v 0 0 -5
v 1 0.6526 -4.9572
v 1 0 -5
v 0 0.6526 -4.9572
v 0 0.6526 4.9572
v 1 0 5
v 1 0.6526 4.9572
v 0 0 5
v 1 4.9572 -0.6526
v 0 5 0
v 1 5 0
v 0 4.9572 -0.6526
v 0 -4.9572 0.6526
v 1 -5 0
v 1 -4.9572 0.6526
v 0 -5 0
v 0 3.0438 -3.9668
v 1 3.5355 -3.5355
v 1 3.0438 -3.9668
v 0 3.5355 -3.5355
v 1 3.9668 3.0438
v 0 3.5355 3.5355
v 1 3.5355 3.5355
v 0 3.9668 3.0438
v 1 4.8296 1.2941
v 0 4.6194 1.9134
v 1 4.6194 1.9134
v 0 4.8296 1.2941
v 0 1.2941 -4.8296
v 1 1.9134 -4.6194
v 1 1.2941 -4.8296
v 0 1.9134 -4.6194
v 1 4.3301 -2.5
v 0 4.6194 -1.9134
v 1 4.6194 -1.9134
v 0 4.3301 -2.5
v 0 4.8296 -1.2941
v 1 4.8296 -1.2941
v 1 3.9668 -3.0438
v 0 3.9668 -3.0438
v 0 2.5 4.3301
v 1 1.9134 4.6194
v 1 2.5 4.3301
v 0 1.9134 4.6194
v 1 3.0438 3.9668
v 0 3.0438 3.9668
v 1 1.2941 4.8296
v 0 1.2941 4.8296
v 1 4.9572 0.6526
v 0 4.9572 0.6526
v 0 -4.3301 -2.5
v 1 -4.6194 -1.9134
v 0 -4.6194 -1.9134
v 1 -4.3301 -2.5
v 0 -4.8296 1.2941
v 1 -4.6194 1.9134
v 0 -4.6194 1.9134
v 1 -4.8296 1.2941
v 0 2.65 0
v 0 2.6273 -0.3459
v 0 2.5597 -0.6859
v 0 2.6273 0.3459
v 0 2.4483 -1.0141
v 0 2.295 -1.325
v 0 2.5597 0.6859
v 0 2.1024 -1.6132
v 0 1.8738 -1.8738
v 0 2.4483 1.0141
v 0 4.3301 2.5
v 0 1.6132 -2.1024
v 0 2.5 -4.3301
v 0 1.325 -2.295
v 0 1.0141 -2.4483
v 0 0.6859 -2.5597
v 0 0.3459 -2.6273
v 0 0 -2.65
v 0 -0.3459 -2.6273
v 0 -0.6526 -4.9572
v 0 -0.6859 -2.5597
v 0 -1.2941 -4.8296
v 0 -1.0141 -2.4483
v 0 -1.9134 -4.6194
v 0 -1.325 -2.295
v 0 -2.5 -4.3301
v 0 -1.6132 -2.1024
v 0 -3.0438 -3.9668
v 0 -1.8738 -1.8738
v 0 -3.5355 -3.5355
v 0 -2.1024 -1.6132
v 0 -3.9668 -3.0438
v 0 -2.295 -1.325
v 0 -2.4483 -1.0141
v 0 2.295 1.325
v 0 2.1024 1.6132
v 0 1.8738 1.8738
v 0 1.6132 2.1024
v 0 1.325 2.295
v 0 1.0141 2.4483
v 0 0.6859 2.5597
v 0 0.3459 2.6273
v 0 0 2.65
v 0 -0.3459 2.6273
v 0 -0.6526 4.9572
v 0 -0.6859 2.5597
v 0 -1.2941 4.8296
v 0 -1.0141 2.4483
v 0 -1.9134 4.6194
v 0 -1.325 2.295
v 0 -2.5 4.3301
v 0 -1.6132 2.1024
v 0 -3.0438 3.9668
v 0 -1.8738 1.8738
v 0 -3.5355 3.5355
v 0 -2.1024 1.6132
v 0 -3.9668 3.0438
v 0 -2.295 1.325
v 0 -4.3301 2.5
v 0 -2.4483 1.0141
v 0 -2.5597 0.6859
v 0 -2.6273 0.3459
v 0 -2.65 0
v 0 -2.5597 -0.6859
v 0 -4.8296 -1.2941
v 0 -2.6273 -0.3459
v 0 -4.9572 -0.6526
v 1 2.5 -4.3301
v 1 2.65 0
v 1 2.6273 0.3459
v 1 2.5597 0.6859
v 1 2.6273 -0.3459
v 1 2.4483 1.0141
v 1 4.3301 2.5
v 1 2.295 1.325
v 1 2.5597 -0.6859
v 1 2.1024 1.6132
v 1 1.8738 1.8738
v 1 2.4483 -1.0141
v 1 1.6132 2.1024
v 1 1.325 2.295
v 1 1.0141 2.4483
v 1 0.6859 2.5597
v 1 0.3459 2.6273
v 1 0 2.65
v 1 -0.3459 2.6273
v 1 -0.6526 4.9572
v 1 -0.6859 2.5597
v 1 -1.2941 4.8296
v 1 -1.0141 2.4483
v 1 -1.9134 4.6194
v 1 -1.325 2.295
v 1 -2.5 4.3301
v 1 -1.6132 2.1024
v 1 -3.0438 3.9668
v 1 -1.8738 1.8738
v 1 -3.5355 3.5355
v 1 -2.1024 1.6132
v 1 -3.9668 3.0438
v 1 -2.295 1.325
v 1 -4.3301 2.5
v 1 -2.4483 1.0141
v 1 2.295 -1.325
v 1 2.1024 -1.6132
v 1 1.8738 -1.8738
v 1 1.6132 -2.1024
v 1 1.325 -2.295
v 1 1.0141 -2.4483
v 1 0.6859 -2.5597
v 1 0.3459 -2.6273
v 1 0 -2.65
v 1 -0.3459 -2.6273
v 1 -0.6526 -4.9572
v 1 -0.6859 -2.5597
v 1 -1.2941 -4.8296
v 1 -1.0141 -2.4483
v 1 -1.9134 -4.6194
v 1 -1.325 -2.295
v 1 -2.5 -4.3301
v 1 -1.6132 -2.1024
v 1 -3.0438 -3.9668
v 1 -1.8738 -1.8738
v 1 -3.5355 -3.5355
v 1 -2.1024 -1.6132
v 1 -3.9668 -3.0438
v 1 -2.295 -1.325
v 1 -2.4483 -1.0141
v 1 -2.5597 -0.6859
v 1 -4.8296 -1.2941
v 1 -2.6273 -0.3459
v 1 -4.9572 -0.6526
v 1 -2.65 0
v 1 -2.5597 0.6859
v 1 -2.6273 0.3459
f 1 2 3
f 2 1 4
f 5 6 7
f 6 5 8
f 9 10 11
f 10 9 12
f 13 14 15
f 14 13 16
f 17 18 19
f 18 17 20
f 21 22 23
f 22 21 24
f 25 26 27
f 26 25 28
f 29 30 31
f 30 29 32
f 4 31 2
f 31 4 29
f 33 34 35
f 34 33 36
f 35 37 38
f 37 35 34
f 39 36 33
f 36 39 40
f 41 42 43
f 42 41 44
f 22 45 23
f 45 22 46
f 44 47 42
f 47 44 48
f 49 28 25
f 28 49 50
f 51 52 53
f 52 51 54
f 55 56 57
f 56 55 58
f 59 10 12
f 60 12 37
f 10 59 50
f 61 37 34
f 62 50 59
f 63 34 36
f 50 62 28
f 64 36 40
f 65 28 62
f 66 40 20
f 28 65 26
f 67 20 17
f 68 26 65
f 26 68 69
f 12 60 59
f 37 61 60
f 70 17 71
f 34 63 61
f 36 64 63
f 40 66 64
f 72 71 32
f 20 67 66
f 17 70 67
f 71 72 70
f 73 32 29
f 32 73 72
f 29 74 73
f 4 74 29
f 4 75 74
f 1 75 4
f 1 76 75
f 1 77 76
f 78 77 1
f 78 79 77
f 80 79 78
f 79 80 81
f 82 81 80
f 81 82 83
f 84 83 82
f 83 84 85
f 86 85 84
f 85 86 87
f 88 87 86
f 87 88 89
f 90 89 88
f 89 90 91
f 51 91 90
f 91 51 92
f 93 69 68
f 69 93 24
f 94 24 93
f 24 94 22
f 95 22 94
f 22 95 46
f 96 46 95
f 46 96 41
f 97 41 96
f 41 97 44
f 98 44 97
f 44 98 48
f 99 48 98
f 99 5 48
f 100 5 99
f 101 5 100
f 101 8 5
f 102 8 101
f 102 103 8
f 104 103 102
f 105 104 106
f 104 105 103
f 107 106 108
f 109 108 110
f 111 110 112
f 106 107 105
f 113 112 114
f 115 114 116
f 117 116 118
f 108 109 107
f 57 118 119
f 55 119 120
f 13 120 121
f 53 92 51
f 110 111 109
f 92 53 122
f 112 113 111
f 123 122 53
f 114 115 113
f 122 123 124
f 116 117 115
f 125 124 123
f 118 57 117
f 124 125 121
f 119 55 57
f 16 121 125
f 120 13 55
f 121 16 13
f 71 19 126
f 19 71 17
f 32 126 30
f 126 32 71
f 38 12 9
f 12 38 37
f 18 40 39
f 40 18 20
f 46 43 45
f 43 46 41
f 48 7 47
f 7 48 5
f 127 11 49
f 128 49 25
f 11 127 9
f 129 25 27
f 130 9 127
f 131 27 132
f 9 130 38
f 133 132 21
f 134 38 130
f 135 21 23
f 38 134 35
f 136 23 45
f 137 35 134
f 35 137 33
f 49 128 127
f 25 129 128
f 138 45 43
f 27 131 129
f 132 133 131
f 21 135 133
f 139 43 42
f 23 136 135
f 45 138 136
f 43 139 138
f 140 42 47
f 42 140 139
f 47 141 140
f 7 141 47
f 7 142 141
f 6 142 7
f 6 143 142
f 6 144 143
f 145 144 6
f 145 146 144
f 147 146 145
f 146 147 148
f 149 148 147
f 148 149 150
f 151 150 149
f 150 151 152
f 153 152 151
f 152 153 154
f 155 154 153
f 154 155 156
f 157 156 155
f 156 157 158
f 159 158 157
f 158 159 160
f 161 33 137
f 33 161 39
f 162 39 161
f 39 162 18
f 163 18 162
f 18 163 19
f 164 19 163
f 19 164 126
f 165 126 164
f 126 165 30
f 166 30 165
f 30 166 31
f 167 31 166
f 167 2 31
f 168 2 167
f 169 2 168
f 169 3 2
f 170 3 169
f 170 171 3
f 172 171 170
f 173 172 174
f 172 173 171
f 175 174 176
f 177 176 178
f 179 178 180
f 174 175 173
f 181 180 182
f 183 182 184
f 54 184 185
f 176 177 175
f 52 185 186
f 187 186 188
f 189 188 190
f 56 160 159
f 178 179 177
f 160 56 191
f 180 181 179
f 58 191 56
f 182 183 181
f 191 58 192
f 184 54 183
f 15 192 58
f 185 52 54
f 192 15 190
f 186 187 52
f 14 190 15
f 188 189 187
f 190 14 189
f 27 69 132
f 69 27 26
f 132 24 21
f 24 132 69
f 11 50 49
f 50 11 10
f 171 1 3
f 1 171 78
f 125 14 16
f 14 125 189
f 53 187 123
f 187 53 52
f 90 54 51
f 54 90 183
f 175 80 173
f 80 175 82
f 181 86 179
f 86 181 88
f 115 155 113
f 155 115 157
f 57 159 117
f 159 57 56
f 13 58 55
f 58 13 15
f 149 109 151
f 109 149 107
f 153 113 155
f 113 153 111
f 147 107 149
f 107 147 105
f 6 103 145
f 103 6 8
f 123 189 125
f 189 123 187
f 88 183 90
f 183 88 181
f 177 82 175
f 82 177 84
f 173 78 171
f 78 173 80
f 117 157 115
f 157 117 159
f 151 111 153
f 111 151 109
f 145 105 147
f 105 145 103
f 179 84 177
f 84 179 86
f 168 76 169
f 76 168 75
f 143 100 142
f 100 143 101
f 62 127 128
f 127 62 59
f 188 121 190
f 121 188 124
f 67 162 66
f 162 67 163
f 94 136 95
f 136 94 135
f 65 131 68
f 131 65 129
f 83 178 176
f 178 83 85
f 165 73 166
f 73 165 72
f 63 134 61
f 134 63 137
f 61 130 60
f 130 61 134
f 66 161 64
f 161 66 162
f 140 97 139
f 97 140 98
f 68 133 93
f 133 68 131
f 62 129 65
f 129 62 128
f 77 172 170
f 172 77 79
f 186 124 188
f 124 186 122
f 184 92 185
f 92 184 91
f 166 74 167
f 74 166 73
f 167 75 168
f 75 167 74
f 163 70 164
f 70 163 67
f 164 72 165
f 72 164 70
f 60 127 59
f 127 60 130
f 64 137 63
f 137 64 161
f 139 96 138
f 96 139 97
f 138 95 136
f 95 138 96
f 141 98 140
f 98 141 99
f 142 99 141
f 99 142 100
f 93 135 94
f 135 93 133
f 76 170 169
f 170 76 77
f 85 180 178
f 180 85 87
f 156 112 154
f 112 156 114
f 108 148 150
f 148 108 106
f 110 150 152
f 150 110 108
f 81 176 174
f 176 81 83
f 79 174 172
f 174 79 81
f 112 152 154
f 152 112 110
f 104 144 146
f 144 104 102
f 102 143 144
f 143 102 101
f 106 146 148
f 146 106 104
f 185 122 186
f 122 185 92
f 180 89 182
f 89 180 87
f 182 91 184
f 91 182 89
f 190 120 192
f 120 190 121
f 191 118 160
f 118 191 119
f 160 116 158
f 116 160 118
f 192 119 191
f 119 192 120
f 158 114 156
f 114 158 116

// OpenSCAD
/**********************************************************************************************************************
 **
 ** parts/vitamins/washer_M4.scad
 **
 ** This file renders a washer of the dimensions specified by the file name.
 **
 **********************************************************************************************************************/

$fn = 48;

rotate([0, 90, 0])
	difference() {
		cylinder(d = 10.0, h = 1.0);
		cylinder(d =  5.3, h = 1.0);
	}
